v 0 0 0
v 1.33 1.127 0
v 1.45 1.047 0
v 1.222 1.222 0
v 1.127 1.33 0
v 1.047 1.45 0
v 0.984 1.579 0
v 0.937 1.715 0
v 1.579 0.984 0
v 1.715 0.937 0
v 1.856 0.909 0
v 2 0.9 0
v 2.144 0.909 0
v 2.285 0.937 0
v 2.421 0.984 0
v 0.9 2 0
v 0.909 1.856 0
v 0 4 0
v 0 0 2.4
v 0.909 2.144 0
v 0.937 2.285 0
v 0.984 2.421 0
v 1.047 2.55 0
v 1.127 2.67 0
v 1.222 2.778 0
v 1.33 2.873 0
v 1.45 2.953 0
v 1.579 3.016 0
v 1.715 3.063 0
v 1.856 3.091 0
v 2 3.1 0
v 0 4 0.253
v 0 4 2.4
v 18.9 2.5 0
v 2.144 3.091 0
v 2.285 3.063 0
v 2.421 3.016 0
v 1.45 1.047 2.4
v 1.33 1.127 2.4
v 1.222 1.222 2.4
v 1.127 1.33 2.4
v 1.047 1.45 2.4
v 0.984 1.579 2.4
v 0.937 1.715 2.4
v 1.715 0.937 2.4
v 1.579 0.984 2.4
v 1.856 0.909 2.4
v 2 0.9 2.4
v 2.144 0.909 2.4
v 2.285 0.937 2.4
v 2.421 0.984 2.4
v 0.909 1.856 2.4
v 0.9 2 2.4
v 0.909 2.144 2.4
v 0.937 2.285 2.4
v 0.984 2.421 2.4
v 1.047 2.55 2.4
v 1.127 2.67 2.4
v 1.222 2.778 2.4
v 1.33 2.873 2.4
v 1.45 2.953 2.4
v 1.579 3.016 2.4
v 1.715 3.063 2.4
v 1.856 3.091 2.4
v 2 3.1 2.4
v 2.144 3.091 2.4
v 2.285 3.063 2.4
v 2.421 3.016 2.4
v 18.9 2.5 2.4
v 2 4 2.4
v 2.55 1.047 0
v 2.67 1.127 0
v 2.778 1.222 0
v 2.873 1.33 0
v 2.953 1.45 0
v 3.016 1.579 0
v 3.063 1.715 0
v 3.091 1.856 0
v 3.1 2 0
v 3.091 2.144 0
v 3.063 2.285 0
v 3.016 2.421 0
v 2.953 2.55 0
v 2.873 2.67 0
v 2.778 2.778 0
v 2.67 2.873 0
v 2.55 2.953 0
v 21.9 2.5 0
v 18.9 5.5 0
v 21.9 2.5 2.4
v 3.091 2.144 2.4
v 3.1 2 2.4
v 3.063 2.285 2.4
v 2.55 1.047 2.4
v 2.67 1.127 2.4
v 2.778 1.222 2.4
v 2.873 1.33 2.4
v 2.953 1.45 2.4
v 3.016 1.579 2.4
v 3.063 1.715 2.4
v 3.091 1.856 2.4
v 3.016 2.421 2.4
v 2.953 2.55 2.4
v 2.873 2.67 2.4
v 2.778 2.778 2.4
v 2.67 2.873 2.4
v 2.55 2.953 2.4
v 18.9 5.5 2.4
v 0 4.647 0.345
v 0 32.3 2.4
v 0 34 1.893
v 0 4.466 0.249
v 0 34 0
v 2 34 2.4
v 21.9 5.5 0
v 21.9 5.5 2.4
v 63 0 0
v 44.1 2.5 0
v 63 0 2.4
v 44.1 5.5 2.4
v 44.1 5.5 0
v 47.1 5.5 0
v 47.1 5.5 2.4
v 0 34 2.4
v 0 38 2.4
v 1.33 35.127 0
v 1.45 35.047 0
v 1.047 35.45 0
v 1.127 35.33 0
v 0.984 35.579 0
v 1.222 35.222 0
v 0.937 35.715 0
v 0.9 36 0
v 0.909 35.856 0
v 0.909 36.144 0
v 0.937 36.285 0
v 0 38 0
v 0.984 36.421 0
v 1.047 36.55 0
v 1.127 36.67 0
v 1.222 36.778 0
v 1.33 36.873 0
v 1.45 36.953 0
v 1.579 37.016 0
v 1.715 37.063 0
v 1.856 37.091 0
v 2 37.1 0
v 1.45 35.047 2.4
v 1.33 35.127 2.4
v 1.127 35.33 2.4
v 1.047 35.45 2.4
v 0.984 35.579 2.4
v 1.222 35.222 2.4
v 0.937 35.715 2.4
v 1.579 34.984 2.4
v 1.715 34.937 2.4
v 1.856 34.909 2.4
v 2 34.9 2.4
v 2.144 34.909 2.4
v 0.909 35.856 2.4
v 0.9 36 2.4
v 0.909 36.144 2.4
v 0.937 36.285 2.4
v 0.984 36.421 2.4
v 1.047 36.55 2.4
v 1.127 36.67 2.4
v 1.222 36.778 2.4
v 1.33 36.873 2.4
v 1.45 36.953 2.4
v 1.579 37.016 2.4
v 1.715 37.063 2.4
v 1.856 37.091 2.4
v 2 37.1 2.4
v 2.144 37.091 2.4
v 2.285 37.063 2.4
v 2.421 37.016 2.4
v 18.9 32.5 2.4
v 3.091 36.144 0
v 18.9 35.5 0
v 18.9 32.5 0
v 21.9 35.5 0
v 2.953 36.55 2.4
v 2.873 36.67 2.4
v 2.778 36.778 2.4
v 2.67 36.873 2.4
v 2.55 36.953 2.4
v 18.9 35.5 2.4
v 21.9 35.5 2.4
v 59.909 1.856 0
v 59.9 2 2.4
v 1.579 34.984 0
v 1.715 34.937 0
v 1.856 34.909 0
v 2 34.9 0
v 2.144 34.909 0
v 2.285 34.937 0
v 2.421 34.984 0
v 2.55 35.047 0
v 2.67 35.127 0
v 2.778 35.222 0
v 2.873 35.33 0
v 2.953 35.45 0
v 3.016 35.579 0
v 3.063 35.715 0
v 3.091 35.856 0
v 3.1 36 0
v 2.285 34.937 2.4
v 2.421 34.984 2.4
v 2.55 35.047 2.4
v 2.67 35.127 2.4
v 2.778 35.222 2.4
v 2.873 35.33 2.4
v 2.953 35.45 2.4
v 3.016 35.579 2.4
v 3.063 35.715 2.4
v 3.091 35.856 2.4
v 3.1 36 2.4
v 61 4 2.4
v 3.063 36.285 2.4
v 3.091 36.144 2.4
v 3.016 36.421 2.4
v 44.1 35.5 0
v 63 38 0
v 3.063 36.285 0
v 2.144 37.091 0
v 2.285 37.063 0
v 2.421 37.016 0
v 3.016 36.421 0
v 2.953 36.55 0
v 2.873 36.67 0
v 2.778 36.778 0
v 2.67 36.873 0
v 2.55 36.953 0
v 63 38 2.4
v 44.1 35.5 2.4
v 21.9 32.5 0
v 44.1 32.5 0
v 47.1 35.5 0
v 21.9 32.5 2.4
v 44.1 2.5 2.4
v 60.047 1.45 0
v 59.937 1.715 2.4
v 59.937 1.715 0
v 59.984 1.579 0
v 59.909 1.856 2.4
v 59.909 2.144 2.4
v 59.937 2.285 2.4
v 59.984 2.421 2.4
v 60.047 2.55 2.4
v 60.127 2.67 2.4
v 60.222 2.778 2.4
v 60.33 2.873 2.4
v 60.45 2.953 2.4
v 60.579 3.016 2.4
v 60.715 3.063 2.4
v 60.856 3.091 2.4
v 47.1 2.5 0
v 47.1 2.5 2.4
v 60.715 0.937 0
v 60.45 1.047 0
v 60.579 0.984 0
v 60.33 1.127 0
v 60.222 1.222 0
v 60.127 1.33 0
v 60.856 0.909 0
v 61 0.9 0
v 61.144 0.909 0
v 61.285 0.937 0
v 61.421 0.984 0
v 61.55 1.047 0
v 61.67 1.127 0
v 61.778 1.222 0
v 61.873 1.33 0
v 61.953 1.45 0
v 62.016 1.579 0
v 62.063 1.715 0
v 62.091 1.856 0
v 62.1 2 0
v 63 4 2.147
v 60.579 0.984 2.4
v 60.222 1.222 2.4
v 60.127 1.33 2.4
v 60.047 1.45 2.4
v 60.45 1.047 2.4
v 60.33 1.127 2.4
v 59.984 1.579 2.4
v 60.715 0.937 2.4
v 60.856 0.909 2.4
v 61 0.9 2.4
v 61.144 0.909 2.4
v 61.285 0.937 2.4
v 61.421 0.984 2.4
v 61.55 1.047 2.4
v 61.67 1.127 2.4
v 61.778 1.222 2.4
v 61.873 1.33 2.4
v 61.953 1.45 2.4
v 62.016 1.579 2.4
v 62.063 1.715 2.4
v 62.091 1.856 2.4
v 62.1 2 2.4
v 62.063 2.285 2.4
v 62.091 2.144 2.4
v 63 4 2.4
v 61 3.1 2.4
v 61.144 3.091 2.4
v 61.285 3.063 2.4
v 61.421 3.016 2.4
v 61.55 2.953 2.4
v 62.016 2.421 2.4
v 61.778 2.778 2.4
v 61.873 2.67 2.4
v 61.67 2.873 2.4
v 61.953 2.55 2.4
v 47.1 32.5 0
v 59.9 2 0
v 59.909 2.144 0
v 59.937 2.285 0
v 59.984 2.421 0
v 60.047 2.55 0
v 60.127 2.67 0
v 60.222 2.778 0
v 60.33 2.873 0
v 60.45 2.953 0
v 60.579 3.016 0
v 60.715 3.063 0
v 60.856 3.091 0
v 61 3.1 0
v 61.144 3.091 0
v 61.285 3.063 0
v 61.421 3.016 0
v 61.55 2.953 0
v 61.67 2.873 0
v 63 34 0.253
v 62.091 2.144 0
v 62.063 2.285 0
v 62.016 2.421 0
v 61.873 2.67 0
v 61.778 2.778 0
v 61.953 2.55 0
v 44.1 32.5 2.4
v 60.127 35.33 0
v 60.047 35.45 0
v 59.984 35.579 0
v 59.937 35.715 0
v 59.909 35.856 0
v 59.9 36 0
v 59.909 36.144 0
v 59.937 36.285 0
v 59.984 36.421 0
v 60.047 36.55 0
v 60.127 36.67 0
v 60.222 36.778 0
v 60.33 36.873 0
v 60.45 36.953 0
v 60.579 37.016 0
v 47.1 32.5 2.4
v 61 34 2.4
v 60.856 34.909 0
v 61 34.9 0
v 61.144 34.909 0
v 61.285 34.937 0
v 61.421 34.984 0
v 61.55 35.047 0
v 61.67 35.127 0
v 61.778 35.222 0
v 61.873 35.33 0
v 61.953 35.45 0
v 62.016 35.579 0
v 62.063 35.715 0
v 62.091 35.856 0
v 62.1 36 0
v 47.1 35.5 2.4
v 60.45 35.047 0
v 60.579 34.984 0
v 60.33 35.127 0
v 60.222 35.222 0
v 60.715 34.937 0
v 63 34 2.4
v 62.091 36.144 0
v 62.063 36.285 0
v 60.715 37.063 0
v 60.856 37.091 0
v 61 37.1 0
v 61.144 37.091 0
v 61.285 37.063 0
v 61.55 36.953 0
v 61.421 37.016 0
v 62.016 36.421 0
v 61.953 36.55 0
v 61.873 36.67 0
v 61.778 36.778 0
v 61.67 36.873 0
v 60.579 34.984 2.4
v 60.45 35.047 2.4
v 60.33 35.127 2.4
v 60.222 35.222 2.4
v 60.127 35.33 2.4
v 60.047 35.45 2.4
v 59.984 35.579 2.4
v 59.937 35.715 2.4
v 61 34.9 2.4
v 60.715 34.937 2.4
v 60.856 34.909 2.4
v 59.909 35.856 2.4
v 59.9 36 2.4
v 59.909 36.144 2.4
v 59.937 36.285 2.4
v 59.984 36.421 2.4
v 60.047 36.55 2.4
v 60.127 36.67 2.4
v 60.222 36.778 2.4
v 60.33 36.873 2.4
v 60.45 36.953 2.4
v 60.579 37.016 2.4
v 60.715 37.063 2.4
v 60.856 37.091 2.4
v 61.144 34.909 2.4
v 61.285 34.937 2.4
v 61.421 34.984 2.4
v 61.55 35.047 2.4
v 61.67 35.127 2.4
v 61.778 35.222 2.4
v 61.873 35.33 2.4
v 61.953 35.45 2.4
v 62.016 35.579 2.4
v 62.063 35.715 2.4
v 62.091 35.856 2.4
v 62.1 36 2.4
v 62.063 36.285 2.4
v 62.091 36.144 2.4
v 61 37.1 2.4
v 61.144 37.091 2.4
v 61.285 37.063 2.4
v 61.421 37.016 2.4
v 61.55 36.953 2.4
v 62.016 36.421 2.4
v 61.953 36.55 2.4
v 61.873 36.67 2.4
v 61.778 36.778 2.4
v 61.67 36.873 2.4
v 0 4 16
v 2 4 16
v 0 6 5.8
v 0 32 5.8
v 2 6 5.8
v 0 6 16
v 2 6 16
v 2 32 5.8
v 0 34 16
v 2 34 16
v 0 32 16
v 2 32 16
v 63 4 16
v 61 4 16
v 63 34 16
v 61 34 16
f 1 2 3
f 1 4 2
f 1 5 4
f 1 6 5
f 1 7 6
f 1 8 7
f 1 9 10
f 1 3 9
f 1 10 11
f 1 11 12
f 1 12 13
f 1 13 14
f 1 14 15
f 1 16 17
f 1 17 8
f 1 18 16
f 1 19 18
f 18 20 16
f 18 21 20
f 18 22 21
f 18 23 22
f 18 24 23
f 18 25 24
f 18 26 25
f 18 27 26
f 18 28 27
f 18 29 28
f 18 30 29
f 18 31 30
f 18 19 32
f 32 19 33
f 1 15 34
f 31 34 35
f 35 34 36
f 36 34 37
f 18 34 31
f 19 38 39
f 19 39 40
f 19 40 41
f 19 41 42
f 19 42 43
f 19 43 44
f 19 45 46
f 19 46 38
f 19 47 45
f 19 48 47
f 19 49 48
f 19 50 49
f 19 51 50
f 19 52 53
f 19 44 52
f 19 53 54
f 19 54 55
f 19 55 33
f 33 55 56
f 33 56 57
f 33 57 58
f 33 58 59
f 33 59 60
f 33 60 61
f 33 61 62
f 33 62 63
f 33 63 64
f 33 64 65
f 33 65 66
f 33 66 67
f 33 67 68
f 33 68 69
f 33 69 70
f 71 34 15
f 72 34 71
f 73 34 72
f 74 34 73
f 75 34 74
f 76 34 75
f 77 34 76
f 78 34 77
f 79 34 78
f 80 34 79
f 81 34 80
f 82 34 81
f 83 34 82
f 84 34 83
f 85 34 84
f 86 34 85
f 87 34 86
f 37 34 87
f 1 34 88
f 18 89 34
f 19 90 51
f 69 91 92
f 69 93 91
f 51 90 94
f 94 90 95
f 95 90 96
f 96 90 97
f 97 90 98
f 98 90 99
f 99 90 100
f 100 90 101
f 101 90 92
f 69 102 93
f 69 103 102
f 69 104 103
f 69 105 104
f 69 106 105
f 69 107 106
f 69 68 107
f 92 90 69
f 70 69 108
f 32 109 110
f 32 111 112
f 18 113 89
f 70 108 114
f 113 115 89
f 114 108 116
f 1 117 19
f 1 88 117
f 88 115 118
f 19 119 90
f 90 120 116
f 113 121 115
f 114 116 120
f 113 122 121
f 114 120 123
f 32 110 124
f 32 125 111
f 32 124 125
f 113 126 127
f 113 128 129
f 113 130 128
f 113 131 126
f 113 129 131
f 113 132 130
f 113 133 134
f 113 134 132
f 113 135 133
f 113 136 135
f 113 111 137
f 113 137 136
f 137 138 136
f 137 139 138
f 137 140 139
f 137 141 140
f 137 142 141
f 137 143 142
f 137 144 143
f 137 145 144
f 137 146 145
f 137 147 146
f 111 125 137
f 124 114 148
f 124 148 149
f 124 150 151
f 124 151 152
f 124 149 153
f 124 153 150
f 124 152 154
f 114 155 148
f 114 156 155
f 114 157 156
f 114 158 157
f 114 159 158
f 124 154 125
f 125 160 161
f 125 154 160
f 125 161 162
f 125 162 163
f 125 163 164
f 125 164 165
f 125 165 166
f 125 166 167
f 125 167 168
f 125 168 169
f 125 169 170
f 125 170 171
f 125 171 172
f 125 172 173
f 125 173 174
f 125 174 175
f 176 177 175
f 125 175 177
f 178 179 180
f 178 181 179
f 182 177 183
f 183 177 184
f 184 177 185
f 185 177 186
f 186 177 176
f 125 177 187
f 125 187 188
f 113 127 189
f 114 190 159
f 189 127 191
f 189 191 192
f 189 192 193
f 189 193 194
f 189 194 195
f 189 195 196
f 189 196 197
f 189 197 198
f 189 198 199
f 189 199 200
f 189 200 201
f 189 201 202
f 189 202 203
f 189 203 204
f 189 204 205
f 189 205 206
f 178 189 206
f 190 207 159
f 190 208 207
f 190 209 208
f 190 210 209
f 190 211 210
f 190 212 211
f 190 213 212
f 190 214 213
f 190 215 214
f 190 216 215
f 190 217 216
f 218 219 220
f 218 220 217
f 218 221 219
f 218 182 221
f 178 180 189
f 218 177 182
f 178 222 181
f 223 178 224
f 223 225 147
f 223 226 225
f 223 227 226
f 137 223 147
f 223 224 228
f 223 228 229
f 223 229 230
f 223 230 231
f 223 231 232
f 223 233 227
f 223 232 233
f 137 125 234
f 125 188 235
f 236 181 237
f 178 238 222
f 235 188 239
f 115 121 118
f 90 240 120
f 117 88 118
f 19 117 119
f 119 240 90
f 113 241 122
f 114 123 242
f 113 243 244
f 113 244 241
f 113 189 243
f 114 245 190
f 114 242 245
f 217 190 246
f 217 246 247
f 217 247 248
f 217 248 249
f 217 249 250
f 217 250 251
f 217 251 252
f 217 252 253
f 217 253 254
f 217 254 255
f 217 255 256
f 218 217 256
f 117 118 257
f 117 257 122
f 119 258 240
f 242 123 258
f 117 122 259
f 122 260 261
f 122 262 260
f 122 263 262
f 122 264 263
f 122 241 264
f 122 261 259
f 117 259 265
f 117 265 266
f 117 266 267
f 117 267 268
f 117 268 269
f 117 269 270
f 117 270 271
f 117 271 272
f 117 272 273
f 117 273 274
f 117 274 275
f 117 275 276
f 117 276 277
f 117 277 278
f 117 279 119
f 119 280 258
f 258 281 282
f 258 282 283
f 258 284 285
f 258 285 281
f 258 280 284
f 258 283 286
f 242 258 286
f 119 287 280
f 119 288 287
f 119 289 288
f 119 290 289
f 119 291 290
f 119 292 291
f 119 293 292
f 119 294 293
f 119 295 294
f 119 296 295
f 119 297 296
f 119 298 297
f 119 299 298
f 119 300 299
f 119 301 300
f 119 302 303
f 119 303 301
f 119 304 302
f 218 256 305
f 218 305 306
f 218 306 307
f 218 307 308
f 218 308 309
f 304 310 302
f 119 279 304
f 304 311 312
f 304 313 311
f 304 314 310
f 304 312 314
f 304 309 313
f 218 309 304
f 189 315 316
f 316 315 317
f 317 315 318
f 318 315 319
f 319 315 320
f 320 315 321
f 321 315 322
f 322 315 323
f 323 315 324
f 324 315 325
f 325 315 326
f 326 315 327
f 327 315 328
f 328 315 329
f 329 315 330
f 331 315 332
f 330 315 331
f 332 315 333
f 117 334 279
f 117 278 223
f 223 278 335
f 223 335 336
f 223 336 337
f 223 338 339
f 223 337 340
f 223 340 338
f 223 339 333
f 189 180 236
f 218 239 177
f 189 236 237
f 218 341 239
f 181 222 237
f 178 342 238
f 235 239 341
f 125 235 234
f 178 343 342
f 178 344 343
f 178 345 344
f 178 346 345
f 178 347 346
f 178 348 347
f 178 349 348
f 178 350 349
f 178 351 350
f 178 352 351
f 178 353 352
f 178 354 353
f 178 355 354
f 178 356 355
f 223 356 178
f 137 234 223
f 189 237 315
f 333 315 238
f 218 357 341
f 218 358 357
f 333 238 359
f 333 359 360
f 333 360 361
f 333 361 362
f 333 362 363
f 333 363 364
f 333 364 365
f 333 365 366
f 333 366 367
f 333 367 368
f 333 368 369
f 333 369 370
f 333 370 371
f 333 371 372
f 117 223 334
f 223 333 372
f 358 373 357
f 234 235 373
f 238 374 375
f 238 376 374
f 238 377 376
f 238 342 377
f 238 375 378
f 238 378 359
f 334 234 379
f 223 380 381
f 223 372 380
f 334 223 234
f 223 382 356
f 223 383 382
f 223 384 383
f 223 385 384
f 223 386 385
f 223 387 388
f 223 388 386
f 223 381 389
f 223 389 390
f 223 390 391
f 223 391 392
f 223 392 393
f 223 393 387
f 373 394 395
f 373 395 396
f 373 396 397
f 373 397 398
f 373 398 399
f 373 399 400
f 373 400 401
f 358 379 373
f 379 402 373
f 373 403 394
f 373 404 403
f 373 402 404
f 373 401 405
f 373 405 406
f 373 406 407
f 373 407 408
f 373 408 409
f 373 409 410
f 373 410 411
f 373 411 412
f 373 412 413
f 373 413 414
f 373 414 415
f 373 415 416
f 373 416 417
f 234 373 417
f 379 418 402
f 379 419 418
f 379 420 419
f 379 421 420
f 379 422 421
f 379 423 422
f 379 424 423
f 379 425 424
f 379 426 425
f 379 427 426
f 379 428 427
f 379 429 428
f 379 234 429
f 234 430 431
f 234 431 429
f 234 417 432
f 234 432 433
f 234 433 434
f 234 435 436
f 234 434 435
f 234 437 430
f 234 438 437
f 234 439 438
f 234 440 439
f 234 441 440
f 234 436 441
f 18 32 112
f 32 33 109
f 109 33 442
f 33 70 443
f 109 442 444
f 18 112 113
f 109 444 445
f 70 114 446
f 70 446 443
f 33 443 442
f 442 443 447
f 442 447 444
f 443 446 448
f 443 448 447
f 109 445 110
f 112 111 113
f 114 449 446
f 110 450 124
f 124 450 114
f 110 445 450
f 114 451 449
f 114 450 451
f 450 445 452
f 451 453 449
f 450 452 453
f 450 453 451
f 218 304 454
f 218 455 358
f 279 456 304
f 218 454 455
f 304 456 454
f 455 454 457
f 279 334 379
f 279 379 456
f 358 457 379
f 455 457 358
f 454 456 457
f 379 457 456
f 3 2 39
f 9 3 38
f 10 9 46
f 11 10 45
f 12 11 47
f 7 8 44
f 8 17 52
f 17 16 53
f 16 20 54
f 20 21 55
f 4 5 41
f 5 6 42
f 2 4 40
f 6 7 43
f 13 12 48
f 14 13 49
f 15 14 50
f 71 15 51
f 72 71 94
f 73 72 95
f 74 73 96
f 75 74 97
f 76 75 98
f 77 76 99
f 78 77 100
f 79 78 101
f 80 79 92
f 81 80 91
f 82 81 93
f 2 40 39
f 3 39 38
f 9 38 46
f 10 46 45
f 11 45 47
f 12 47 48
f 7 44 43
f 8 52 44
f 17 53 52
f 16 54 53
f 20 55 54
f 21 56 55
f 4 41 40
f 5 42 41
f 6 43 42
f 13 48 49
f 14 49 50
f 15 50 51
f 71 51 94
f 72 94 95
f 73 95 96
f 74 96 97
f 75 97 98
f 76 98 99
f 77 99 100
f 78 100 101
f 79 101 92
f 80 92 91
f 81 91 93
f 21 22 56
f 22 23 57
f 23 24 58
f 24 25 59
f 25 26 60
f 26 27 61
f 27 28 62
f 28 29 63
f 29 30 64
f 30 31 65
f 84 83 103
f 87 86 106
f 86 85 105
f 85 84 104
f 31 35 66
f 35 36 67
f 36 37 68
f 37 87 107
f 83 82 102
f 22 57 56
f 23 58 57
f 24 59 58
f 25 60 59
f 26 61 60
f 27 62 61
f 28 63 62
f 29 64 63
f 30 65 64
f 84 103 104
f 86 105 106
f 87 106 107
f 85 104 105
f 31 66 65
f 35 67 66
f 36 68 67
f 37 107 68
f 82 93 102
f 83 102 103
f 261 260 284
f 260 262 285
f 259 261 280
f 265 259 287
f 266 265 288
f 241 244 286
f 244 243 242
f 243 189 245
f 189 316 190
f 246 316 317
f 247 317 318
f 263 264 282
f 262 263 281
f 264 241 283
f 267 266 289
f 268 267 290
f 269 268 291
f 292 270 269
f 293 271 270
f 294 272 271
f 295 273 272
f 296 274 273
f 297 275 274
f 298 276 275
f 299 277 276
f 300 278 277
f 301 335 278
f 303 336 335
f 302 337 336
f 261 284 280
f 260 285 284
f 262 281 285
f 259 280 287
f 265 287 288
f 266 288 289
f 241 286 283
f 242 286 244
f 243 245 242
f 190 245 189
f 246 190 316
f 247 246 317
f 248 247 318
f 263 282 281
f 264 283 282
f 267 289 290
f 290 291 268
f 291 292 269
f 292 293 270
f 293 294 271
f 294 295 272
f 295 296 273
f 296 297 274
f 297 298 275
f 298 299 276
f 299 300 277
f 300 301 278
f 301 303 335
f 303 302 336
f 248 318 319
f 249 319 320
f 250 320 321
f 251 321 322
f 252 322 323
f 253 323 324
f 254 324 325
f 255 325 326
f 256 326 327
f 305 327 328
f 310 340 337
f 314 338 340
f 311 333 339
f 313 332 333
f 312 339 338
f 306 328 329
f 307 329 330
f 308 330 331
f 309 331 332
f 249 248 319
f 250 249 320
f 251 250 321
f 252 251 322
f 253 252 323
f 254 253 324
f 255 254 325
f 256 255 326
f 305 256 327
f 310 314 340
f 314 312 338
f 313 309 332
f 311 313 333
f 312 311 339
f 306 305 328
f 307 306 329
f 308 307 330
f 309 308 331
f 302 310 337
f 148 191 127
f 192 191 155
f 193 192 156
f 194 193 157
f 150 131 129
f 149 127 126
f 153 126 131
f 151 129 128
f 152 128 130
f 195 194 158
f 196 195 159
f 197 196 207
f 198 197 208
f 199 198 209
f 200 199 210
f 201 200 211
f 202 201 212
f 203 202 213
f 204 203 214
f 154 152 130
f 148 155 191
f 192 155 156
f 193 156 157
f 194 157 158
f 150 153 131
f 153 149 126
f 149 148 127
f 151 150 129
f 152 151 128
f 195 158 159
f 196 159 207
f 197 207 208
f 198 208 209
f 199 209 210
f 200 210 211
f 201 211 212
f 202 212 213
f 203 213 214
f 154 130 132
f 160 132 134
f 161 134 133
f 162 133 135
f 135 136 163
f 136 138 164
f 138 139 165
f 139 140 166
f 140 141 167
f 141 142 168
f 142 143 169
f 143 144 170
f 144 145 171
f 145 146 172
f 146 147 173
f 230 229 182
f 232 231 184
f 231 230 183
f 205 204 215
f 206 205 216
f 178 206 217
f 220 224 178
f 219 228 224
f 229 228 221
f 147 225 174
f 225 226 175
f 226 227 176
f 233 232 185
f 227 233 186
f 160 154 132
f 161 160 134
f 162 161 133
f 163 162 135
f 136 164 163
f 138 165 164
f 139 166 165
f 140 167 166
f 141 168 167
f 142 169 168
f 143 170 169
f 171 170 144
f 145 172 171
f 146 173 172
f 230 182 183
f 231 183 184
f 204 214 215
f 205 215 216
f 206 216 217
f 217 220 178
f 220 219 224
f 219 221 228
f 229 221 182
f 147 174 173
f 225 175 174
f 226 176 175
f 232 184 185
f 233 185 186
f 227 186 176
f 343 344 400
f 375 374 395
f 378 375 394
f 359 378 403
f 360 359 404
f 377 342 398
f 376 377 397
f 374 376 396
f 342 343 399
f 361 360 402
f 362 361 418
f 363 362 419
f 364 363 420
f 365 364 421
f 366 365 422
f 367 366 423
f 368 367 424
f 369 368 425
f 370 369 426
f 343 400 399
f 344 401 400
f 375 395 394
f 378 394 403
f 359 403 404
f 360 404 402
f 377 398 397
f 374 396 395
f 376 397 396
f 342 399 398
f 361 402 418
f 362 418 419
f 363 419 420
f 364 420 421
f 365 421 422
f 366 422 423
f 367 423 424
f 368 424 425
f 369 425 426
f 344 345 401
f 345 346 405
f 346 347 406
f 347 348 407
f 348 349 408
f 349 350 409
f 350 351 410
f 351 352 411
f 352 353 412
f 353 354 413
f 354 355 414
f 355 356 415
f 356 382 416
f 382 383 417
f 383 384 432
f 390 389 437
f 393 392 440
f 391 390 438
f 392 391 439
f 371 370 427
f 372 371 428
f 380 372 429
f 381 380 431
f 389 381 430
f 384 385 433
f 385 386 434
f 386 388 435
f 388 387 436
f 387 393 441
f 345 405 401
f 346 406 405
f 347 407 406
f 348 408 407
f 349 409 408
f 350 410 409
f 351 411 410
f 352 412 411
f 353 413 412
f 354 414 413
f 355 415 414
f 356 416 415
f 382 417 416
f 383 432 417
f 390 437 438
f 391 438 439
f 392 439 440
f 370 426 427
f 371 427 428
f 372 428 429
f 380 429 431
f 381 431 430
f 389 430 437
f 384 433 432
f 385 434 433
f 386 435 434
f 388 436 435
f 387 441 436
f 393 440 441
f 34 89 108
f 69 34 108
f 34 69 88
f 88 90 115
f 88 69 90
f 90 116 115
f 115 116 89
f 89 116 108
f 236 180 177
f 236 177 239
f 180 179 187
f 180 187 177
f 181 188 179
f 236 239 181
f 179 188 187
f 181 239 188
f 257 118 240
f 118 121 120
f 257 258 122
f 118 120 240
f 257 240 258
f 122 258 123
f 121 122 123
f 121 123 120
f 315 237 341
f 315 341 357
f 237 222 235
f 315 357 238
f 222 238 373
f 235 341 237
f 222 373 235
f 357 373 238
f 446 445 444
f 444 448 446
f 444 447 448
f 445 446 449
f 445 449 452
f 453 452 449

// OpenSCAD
// Generated FH1 print part; mm. See parameters.json and physical-fit limits.
difference() {
union() {
cube([63,38,2.4]);
translate([0, 4, 0]) { cube([2,30,16]); }
translate([61, 4, 0]) { cube([2,30,16]); }
}
translate([2, 2, -0.1]) { cylinder(d=2.2,h=2.6,$fn=48); }
translate([61, 2, -0.1]) { cylinder(d=2.2,h=2.6,$fn=48); }
translate([2, 36, -0.1]) { cylinder(d=2.2,h=2.6,$fn=48); }
translate([61, 36, -0.1]) { cylinder(d=2.2,h=2.6,$fn=48); }
translate([18.9, 2.5, -0.1]) { cube([3,3,2.6]); }
translate([18.9, 32.5, -0.1]) { cube([3,3,2.6]); }
translate([44.099999999999994, 2.5, -0.1]) { cube([3,3,2.6]); }
translate([44.099999999999994, 32.5, -0.1]) { cube([3,3,2.6]); }
translate([-0.1, 6, 5.8]) { cube([4.2,26,20]); }
}
